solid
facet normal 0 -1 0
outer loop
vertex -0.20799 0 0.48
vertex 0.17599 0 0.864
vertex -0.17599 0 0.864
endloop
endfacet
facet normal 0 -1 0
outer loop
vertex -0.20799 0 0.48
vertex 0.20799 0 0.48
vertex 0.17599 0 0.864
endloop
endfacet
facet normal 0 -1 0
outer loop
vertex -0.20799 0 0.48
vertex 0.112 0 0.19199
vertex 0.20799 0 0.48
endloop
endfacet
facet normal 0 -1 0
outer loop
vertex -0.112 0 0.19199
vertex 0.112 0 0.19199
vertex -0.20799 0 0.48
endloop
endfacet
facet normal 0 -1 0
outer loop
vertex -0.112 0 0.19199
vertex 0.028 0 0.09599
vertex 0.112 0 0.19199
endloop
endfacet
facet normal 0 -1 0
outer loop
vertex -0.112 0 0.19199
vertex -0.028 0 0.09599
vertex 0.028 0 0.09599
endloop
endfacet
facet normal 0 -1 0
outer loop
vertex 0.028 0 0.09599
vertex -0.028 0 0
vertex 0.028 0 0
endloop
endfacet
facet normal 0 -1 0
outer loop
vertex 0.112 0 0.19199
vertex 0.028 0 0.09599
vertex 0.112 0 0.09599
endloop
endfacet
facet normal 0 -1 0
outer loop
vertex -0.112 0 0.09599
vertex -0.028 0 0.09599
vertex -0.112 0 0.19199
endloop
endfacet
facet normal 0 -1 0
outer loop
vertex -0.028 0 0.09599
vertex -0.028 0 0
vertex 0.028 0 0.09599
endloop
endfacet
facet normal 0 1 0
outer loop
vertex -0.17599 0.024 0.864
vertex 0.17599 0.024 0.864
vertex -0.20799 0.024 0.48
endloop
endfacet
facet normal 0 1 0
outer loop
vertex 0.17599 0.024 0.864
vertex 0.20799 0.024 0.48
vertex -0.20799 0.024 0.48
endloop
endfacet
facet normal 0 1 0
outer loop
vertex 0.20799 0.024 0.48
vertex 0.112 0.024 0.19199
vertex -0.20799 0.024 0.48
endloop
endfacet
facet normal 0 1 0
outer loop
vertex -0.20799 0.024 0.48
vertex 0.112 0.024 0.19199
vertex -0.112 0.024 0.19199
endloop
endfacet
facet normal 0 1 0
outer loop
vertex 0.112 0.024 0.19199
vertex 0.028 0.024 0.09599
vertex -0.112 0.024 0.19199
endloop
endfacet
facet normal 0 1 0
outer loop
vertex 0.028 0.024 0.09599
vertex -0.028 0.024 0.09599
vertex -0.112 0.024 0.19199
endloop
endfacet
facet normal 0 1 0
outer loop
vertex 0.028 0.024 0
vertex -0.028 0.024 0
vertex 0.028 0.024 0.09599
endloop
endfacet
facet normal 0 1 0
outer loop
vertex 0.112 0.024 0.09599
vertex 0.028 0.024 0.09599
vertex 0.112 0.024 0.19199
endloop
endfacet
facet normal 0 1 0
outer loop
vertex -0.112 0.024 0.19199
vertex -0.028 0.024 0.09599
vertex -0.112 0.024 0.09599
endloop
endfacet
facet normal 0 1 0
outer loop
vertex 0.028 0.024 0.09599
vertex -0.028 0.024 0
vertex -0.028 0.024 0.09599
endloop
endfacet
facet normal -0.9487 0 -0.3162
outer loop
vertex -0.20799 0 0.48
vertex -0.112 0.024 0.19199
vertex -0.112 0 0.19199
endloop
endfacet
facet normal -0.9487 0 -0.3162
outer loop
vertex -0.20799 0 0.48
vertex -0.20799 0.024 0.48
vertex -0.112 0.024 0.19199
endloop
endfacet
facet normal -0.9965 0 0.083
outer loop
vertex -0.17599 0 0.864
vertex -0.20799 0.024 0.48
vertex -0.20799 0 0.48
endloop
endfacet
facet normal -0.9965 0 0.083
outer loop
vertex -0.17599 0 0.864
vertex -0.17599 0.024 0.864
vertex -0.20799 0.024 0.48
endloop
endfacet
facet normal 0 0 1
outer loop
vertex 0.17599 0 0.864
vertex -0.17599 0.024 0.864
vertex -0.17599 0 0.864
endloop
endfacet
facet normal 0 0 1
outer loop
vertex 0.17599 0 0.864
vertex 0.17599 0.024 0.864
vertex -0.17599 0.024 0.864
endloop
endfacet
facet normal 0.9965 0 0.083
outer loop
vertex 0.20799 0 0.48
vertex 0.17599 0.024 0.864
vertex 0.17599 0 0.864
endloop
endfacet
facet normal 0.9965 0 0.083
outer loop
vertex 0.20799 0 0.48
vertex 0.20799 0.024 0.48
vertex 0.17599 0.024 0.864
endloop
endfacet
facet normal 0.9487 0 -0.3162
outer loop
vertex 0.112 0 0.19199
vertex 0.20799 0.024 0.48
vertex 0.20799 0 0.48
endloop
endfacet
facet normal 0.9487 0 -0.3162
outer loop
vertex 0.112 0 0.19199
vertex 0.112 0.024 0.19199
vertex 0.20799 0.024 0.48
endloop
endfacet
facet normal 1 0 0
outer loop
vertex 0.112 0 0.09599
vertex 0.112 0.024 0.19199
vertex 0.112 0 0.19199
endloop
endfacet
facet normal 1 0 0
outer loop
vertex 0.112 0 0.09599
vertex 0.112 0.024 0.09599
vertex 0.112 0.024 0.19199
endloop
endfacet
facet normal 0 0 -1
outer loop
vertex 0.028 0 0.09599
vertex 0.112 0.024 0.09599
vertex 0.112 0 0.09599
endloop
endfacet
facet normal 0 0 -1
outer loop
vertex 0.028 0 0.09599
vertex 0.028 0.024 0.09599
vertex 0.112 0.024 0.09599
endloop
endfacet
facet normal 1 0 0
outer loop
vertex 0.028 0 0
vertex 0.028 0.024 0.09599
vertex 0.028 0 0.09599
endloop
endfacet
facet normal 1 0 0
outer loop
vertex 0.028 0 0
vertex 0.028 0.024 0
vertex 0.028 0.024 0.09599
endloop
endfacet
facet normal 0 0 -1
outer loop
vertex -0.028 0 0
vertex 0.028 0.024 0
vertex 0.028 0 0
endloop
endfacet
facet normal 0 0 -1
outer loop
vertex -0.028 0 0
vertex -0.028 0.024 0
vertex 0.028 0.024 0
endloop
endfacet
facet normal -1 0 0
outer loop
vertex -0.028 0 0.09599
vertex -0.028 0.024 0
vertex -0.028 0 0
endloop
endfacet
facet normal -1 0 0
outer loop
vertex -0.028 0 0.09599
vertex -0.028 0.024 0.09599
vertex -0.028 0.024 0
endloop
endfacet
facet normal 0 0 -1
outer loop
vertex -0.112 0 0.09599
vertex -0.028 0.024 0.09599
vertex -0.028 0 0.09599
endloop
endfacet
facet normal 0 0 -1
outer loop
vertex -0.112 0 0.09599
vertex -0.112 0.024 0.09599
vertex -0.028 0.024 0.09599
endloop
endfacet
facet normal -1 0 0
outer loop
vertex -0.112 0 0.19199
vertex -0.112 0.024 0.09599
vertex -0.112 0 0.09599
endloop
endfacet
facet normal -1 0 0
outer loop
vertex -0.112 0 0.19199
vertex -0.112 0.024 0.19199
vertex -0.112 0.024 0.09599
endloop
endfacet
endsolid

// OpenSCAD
$fa = 1;
$fs = 0.01;
mag = 0.416/2.6;
thickness = mag * 0.15;

a = mag * 1.4 / 2.0;
b = mag * 2.6 / 2.0;
c = mag * 2.2 / 2.0;
d = mag * 2.4;
e = mag * 1.8;
f = mag * 0.6;
g = mag * 0.6;
vcenter = mag * -5.4;

p0 = [-a, vcenter + d + e + f];
p1 = [-a, vcenter + d + e];
p2 = [-b, vcenter + d];
p3 = [-c, vcenter + 0.0];
p4 = [c, vcenter + 0.0];
p5 = [b, vcenter + d];
p6 = [a, vcenter + d + e];
p7 = [a, vcenter + d + e + f];
points = [p0, p1, p2, p3, p4, p5, p6, p7];
rotate([-90,0,0])
linear_extrude(height = thickness) {
  translate([0, -g/2, 0])
    square([a/2, g],center = true);   
  polygon(points);  
}  
